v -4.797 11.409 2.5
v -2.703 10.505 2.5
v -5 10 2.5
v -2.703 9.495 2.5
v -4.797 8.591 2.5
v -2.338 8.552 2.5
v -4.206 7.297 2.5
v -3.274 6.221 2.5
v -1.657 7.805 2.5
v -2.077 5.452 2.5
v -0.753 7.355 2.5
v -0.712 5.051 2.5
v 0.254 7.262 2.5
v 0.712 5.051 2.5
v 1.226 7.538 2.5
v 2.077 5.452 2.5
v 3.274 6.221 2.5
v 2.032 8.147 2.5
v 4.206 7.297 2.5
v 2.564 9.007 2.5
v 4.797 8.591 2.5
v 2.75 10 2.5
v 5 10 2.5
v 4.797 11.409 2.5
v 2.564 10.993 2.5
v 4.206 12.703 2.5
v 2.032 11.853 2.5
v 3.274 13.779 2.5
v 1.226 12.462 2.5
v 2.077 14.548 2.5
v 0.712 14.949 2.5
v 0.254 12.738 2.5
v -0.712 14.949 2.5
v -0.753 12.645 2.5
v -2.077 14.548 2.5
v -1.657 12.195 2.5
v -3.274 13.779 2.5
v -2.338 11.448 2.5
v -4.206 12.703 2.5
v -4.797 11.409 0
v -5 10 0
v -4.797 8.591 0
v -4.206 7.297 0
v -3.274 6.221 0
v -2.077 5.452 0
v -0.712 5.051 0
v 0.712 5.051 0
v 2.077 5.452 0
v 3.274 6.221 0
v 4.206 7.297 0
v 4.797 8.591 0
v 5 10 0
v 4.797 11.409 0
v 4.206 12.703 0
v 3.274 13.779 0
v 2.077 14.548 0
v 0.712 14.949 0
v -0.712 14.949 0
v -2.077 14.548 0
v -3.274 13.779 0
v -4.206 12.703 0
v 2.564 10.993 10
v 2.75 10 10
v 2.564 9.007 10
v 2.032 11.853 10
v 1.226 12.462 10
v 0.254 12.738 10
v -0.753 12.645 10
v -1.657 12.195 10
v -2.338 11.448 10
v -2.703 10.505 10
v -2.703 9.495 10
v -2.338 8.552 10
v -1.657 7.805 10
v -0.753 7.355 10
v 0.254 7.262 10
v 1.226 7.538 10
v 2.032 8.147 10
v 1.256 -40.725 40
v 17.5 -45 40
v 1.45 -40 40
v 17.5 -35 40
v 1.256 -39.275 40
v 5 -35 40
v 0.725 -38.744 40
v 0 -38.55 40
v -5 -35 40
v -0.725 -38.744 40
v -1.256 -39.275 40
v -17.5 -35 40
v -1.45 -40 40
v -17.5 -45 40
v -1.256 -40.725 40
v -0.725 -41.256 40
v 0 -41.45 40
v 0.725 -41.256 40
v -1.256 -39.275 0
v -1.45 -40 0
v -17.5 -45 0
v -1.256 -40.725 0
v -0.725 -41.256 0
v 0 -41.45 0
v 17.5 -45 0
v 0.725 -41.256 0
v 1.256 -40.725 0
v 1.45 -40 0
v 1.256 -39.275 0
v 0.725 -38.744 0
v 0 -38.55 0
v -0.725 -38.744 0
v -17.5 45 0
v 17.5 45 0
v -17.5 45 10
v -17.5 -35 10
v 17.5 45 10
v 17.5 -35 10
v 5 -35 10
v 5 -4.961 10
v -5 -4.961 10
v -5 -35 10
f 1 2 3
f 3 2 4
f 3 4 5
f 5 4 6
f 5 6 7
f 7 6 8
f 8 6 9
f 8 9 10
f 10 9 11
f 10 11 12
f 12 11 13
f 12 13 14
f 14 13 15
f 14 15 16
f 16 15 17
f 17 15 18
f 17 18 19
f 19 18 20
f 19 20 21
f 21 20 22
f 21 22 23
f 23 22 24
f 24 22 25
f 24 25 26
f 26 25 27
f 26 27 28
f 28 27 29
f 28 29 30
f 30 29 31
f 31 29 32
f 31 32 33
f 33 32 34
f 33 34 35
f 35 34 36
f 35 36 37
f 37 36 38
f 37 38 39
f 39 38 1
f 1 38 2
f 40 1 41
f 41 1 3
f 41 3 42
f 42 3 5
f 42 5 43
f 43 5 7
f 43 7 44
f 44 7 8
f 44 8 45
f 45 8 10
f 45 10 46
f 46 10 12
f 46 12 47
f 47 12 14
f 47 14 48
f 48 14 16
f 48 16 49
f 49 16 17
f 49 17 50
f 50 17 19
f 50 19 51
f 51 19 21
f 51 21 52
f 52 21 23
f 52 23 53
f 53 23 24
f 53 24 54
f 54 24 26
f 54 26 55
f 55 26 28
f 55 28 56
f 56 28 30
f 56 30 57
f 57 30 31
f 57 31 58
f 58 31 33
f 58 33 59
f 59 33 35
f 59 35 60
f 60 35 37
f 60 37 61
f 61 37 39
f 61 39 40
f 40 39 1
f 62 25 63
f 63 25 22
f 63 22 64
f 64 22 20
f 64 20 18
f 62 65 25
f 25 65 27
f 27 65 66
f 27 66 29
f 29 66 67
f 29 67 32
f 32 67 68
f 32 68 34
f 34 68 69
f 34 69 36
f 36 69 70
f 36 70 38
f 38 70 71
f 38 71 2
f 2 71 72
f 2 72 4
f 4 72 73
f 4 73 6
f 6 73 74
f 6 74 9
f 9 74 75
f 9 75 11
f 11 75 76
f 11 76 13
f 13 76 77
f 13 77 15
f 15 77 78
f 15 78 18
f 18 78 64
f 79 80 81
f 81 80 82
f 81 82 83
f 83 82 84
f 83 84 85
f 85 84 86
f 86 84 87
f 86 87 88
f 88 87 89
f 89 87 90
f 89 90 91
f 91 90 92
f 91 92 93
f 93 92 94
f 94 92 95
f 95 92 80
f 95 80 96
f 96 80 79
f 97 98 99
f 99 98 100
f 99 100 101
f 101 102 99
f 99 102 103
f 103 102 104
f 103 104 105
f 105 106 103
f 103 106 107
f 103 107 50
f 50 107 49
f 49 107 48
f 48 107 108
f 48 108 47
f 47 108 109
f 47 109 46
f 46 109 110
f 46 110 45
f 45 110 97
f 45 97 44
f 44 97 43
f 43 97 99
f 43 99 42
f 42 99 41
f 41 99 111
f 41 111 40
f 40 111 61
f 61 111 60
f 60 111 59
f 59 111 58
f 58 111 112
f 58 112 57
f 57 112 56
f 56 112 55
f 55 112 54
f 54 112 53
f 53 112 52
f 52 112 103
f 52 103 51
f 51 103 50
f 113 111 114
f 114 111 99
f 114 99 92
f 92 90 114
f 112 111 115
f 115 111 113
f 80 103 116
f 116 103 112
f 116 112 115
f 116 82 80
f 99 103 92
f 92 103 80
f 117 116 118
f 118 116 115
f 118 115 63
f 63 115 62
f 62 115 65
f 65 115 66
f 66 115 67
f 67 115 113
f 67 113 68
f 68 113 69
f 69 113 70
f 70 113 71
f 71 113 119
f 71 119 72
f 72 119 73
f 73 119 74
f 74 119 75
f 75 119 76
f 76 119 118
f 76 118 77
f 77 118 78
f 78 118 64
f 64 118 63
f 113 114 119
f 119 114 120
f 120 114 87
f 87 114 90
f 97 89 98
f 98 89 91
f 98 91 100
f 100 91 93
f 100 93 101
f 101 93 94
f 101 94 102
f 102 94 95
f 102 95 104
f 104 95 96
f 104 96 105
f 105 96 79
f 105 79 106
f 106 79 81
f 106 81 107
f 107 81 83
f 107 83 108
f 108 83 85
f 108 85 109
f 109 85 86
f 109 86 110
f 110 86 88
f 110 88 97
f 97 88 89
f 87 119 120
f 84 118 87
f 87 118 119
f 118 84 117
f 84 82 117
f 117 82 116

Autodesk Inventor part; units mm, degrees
ref_plane "YZ Plane" through (0, 0, 0) normal (1, 0, 0) x (0, 1, 0)
ref_plane "XZ Plane" through (0, 0, 0) normal (0, 1, 0) x (-1, 0, 0)
ref_plane "XY Plane" through (0, 0, 0) normal (0, 0, 1) x (1, 0, 0)
sketch "Skizze1" plane through (0, 0, 0) normal (0, 0, 1) x (1, 0, 0)
  line L0 (-17.5, -45) -> (17.5, -45)
  line L1 (17.5, -45) -> (17.5, 45)
  line L2 (17.5, 45) -> (-17.5, 45)
  line L3 (-17.5, 45) -> (-17.5, -45)
  line L4 (-17.5, -45) -> (17.5, 45) construction
  line L5 (17.5, -45) -> (-17.5, 45) construction
  point P0 (0, 0)
  dimension "d0" = 35
  dimension "d1" = 90
extrude "Extrusion1" add sketch "Skizze1" along normal blind 10
sketch "Skizze2" plane through (0, 0, 10) normal (0, 0, 1) x (1, 0, 0)
  line L0 (-17.5, -45) -> (17.5, -45) projected
  line L1 (17.5, -45) -> (17.5, 45) projected
  line L2 (-17.5, -45) -> (17.5, -45)
  line L3 (17.5, -45) -> (17.5, -35)
  line L4 (17.5, -35) -> (-17.5, -35)
  line L5 (-17.5, -35) -> (-17.5, -45)
  point P0 (0, 0)
  dimension "d4" = 10
extrude "Extrusion2" add sketch "Skizze2" along normal blind 30
sketch "Skizze3" plane through (0, 0, 0) normal (0, 0, -1) x (-1, 0, 0)
  line L0 (17.5, -45) -> (-17.5, -45) projected
  line L1 (-17.5, -45) -> (-17.5, -35) projected
  line L2 (-17.5, -35) -> (17.5, -35) projected
  line L3 (17.5, -35) -> (17.5, -45) projected
  line L4 (0, -63) -> (0, 63) projected
  line L5 (-17.5, -45) -> (-17.5, 45) projected
  line L6 (-17.5, -40) -> (17.5, -40)
  point P0 (0, 0)
  point P1 (0, 10)
  dimension "d7" = 50
hole "Bohrung1" at (0, 10, 0) direction (0, 0, 1) diameter 5.5 end through all counterbore diameter 10 counterbore depth 2.5
sketch "Skizze4" plane through (0, 0, 40) normal (0, 0, 1) x (1, 0, 0)
  line L0 (-17.5, -45) -> (17.5, -45) projected
  line L1 (17.5, -45) -> (17.5, -35) projected
  line L2 (17.5, -35) -> (-17.5, -35) projected
  line L3 (-17.5, -35) -> (-17.5, -45) projected
  line L4 (-17.5, -35) -> (17.5, -45) construction
  line L5 (-17.5, -35) -> (17.5, -35) construction
  line L6 (17.5, -35) -> (-17.5, -45) construction
  point P0 (0, 0)
  point P1 (0, -40)
hole "Bohrung2" at (0, -40, 40) direction (0, 0, -1) diameter 2.9 end through all
sketch "Skizze5" plane through (0, 0, 0) normal (1, 0, 0) x (0, 1, 0)
  line L0 (7.25, 10) -> (12.75, 10) projected
  line L1 (7.25, 2.5) -> (12.75, 2.5) projected
  line L2 (45, 10) -> (-35, 10) projected
  line L3 (-35, 10) -> (-35, 40) projected
  line L4 (-35, 40) -> (-4.9612, 10)
  line L5 (10.0388, 10) -> (10.0388, -4.326) construction
  line L6 (-35, 40) -> (-35, 10)
  line L7 (-4.9612, 10) -> (-35, 10)
  point P0 (0, 0)
  dimension "d22" = 15
extrude "Extrusion3" add sketch "Skizze5" along normal mid plane 10
properties part number "Verstrebung"
